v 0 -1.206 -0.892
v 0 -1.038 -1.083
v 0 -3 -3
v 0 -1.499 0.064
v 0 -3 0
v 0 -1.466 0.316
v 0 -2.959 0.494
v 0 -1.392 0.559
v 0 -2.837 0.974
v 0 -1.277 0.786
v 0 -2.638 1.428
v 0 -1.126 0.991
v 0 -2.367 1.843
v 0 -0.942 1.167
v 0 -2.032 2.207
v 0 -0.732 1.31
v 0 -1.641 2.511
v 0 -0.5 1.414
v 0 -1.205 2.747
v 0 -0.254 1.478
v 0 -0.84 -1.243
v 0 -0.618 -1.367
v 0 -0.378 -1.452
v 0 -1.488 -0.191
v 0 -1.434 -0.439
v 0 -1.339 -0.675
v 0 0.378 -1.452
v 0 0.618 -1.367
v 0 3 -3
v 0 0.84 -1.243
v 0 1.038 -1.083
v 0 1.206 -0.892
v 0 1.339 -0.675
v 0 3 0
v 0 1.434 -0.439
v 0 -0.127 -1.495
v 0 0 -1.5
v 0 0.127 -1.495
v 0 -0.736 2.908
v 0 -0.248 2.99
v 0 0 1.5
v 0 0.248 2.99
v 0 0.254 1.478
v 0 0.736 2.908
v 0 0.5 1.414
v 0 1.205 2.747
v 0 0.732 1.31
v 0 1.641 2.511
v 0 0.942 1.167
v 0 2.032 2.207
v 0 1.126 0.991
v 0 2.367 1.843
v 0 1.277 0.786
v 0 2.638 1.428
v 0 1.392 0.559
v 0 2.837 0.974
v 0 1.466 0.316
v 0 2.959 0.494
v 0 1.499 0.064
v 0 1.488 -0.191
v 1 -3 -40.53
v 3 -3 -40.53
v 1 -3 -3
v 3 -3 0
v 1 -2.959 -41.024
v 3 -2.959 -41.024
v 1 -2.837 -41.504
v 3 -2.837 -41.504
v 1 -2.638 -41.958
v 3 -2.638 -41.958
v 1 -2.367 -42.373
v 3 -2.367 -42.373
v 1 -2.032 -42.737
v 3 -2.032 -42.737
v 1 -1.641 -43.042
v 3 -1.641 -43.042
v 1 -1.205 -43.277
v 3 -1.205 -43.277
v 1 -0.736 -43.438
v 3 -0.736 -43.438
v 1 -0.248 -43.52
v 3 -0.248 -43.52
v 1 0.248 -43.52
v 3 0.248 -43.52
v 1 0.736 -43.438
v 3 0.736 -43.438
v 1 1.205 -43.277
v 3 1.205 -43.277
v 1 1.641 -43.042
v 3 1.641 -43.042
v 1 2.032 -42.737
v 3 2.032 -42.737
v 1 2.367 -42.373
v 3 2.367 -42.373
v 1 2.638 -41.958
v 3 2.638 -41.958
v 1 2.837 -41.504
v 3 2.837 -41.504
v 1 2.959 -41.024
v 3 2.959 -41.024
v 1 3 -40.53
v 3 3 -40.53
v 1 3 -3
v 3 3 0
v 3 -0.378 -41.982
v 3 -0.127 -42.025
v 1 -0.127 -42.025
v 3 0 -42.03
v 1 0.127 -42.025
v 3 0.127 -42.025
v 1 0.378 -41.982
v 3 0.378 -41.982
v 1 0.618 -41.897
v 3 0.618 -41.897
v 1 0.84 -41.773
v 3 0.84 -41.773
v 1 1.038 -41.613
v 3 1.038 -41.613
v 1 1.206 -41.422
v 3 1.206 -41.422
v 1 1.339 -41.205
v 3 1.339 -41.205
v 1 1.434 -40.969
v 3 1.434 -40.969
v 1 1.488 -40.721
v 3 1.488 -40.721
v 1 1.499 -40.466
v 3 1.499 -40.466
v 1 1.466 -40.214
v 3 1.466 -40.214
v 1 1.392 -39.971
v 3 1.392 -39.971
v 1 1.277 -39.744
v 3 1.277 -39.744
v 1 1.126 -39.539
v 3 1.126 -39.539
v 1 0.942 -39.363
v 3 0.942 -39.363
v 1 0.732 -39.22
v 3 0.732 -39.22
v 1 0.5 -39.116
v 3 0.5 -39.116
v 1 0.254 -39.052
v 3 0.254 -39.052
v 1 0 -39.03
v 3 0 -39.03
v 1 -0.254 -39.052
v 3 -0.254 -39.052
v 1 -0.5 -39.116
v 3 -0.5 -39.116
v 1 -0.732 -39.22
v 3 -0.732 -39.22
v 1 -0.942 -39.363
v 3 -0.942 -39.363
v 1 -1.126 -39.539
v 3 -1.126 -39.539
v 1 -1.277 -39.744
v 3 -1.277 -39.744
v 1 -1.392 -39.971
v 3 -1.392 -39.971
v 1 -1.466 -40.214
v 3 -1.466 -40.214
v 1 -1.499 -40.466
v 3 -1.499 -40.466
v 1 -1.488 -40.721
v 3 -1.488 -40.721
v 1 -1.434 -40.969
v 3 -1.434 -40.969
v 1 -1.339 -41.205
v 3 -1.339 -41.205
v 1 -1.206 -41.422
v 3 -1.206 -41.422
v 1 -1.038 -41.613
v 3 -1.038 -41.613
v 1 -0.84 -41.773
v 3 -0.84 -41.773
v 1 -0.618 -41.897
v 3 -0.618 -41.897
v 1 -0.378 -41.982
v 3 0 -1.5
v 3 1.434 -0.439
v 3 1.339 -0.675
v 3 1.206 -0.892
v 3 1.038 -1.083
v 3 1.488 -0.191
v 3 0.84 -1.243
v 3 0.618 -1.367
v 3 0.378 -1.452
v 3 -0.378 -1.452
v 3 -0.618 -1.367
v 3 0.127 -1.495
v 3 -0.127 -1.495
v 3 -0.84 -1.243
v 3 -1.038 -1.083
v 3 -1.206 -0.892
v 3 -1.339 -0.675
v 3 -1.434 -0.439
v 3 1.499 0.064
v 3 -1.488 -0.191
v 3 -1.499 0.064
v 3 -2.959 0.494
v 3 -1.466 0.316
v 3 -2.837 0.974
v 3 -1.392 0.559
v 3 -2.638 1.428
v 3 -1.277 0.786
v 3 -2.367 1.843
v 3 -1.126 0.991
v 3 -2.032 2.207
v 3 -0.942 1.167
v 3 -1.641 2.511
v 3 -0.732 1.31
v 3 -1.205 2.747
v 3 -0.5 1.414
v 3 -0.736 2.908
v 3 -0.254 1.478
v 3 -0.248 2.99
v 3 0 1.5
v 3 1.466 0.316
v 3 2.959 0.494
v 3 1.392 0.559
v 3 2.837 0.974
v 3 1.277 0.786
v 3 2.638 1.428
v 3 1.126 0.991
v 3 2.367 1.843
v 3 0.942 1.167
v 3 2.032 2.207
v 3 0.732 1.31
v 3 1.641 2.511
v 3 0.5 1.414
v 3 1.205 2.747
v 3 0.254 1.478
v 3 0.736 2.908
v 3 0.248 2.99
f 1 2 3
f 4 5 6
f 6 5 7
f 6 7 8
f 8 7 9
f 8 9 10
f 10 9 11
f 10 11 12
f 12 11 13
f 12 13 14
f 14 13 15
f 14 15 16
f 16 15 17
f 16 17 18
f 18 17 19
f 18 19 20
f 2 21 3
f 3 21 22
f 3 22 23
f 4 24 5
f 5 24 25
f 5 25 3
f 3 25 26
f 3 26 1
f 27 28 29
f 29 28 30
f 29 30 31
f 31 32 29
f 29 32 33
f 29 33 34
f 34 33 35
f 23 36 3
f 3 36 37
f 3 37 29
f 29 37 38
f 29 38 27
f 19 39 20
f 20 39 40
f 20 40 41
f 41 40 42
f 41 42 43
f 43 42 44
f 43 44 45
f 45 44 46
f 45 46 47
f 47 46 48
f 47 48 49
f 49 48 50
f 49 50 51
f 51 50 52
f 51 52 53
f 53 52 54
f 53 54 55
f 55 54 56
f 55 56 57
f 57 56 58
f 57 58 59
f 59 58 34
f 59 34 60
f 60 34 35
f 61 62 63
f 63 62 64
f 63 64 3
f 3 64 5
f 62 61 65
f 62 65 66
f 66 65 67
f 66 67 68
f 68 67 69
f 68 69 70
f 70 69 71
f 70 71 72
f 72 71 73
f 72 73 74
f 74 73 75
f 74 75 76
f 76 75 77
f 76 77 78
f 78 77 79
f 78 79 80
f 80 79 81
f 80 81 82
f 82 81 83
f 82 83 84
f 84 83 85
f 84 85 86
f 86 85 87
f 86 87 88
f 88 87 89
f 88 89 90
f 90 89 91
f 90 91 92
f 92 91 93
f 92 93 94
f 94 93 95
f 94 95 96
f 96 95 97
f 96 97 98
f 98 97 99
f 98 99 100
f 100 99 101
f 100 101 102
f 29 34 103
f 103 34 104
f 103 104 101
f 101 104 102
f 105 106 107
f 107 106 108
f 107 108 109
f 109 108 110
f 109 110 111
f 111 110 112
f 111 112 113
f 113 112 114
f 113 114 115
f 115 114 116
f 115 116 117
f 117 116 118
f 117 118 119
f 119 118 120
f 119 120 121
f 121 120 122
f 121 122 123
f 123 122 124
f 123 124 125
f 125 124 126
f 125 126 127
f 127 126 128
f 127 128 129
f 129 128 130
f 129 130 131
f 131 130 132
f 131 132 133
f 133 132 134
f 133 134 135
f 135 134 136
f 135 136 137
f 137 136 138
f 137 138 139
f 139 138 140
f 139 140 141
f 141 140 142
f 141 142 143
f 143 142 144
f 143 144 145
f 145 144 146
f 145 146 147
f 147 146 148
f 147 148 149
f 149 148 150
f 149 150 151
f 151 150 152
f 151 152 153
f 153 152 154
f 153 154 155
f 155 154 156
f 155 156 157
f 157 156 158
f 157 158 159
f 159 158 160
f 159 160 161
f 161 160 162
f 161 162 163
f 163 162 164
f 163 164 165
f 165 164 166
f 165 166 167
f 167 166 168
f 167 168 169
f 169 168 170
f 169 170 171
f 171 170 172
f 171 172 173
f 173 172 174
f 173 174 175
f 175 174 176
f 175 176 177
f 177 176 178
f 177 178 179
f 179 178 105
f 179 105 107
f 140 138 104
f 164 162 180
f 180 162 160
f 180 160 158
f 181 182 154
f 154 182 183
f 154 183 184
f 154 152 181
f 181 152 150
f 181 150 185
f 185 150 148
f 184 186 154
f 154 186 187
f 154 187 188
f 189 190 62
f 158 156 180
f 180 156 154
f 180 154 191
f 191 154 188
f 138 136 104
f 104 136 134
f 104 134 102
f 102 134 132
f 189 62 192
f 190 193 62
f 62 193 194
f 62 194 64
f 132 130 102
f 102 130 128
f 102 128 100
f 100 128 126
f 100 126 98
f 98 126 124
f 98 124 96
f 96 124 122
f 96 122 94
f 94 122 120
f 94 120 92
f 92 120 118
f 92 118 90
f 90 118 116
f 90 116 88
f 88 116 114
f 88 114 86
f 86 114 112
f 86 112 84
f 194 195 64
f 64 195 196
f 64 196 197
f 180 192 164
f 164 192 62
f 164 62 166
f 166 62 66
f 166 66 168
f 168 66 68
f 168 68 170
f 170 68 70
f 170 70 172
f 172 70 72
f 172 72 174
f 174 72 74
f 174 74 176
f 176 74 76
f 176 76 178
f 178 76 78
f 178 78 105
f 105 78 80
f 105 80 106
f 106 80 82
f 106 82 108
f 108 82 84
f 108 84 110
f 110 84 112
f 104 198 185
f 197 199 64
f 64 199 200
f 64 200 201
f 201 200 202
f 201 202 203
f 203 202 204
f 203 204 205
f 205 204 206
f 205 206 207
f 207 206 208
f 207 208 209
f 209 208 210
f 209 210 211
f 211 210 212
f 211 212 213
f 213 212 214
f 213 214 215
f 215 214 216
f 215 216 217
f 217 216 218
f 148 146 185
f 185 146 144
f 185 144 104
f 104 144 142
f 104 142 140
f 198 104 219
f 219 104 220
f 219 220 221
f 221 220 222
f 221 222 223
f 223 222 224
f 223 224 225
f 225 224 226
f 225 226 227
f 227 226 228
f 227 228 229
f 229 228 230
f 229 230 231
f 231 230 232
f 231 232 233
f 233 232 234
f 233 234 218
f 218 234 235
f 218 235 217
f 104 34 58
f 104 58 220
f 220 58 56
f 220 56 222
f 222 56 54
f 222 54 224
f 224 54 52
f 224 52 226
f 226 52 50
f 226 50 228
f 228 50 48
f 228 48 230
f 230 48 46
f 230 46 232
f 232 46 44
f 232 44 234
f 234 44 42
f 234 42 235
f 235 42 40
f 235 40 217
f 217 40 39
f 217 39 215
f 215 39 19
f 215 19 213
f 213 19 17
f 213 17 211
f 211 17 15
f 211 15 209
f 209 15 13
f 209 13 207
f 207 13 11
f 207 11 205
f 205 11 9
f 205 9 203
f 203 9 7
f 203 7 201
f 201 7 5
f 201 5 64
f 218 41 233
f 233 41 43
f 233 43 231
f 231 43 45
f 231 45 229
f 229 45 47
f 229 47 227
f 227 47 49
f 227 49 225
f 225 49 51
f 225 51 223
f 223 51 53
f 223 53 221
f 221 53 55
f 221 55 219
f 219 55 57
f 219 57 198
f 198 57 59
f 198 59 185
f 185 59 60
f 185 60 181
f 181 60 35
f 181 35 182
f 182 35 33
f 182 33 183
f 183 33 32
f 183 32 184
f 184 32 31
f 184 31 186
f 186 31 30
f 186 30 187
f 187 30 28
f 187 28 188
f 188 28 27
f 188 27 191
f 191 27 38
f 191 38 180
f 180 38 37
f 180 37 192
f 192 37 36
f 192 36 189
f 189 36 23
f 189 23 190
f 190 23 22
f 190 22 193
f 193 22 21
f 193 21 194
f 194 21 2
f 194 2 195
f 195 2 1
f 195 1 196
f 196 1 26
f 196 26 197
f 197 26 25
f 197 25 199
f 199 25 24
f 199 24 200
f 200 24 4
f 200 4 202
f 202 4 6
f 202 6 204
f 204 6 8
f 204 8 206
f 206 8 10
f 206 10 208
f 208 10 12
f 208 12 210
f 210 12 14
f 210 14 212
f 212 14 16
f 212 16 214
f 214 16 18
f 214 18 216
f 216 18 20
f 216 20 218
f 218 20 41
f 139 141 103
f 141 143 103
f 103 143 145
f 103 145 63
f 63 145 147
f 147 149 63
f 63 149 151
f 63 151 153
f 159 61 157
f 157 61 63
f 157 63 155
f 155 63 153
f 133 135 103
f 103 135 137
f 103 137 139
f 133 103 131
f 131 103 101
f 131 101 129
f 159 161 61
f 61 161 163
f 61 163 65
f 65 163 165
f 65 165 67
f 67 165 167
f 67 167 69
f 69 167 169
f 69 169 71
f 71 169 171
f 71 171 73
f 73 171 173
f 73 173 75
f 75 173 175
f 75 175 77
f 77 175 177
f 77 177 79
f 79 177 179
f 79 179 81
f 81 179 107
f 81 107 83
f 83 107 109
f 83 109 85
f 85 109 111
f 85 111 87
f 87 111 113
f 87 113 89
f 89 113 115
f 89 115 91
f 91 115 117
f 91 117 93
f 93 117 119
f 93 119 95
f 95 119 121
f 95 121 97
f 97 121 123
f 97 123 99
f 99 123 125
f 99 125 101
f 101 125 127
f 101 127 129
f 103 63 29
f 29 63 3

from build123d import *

# Parameters (mm, degrees)
SKETCH1_R           = 1.5
BOSS_EXTRUDE1_DEPTH = 3
SKETCH2_W           = 40.53
SKETCH2_H           = 6
CUT_EXTRUDE1_DEPTH  = 1


with BuildPart() as part:
    # Sketch1 → Boss-Extrude1 (new body)
    with BuildSketch(Plane(origin=(0, 0, 0), x_dir=(0, 0, -1), z_dir=(1, 0, 0))):
        with BuildLine():
            Line((0, -3), (40.53, -3))
            ThreePointArc((40.53, -3), (43.53, 0), (40.53, 3))
            Line((40.53, 3), (0, 3))
            ThreePointArc((0, 3), (-3, 0), (0, -3))
        make_face()
        Circle(SKETCH1_R, mode=Mode.SUBTRACT)
        with Locations((40.53, 0)):
            Circle(SKETCH1_R, mode=Mode.SUBTRACT)
    extrude(amount=BOSS_EXTRUDE1_DEPTH)

    # Sketch2 → Cut-Extrude1 (cut)
    with BuildSketch(Plane.ZY):
        with Locations((-23.265, 0)):
            Rectangle(SKETCH2_W, SKETCH2_H)
    extrude(amount=-CUT_EXTRUDE1_DEPTH, mode=Mode.SUBTRACT)


solid = part.part
